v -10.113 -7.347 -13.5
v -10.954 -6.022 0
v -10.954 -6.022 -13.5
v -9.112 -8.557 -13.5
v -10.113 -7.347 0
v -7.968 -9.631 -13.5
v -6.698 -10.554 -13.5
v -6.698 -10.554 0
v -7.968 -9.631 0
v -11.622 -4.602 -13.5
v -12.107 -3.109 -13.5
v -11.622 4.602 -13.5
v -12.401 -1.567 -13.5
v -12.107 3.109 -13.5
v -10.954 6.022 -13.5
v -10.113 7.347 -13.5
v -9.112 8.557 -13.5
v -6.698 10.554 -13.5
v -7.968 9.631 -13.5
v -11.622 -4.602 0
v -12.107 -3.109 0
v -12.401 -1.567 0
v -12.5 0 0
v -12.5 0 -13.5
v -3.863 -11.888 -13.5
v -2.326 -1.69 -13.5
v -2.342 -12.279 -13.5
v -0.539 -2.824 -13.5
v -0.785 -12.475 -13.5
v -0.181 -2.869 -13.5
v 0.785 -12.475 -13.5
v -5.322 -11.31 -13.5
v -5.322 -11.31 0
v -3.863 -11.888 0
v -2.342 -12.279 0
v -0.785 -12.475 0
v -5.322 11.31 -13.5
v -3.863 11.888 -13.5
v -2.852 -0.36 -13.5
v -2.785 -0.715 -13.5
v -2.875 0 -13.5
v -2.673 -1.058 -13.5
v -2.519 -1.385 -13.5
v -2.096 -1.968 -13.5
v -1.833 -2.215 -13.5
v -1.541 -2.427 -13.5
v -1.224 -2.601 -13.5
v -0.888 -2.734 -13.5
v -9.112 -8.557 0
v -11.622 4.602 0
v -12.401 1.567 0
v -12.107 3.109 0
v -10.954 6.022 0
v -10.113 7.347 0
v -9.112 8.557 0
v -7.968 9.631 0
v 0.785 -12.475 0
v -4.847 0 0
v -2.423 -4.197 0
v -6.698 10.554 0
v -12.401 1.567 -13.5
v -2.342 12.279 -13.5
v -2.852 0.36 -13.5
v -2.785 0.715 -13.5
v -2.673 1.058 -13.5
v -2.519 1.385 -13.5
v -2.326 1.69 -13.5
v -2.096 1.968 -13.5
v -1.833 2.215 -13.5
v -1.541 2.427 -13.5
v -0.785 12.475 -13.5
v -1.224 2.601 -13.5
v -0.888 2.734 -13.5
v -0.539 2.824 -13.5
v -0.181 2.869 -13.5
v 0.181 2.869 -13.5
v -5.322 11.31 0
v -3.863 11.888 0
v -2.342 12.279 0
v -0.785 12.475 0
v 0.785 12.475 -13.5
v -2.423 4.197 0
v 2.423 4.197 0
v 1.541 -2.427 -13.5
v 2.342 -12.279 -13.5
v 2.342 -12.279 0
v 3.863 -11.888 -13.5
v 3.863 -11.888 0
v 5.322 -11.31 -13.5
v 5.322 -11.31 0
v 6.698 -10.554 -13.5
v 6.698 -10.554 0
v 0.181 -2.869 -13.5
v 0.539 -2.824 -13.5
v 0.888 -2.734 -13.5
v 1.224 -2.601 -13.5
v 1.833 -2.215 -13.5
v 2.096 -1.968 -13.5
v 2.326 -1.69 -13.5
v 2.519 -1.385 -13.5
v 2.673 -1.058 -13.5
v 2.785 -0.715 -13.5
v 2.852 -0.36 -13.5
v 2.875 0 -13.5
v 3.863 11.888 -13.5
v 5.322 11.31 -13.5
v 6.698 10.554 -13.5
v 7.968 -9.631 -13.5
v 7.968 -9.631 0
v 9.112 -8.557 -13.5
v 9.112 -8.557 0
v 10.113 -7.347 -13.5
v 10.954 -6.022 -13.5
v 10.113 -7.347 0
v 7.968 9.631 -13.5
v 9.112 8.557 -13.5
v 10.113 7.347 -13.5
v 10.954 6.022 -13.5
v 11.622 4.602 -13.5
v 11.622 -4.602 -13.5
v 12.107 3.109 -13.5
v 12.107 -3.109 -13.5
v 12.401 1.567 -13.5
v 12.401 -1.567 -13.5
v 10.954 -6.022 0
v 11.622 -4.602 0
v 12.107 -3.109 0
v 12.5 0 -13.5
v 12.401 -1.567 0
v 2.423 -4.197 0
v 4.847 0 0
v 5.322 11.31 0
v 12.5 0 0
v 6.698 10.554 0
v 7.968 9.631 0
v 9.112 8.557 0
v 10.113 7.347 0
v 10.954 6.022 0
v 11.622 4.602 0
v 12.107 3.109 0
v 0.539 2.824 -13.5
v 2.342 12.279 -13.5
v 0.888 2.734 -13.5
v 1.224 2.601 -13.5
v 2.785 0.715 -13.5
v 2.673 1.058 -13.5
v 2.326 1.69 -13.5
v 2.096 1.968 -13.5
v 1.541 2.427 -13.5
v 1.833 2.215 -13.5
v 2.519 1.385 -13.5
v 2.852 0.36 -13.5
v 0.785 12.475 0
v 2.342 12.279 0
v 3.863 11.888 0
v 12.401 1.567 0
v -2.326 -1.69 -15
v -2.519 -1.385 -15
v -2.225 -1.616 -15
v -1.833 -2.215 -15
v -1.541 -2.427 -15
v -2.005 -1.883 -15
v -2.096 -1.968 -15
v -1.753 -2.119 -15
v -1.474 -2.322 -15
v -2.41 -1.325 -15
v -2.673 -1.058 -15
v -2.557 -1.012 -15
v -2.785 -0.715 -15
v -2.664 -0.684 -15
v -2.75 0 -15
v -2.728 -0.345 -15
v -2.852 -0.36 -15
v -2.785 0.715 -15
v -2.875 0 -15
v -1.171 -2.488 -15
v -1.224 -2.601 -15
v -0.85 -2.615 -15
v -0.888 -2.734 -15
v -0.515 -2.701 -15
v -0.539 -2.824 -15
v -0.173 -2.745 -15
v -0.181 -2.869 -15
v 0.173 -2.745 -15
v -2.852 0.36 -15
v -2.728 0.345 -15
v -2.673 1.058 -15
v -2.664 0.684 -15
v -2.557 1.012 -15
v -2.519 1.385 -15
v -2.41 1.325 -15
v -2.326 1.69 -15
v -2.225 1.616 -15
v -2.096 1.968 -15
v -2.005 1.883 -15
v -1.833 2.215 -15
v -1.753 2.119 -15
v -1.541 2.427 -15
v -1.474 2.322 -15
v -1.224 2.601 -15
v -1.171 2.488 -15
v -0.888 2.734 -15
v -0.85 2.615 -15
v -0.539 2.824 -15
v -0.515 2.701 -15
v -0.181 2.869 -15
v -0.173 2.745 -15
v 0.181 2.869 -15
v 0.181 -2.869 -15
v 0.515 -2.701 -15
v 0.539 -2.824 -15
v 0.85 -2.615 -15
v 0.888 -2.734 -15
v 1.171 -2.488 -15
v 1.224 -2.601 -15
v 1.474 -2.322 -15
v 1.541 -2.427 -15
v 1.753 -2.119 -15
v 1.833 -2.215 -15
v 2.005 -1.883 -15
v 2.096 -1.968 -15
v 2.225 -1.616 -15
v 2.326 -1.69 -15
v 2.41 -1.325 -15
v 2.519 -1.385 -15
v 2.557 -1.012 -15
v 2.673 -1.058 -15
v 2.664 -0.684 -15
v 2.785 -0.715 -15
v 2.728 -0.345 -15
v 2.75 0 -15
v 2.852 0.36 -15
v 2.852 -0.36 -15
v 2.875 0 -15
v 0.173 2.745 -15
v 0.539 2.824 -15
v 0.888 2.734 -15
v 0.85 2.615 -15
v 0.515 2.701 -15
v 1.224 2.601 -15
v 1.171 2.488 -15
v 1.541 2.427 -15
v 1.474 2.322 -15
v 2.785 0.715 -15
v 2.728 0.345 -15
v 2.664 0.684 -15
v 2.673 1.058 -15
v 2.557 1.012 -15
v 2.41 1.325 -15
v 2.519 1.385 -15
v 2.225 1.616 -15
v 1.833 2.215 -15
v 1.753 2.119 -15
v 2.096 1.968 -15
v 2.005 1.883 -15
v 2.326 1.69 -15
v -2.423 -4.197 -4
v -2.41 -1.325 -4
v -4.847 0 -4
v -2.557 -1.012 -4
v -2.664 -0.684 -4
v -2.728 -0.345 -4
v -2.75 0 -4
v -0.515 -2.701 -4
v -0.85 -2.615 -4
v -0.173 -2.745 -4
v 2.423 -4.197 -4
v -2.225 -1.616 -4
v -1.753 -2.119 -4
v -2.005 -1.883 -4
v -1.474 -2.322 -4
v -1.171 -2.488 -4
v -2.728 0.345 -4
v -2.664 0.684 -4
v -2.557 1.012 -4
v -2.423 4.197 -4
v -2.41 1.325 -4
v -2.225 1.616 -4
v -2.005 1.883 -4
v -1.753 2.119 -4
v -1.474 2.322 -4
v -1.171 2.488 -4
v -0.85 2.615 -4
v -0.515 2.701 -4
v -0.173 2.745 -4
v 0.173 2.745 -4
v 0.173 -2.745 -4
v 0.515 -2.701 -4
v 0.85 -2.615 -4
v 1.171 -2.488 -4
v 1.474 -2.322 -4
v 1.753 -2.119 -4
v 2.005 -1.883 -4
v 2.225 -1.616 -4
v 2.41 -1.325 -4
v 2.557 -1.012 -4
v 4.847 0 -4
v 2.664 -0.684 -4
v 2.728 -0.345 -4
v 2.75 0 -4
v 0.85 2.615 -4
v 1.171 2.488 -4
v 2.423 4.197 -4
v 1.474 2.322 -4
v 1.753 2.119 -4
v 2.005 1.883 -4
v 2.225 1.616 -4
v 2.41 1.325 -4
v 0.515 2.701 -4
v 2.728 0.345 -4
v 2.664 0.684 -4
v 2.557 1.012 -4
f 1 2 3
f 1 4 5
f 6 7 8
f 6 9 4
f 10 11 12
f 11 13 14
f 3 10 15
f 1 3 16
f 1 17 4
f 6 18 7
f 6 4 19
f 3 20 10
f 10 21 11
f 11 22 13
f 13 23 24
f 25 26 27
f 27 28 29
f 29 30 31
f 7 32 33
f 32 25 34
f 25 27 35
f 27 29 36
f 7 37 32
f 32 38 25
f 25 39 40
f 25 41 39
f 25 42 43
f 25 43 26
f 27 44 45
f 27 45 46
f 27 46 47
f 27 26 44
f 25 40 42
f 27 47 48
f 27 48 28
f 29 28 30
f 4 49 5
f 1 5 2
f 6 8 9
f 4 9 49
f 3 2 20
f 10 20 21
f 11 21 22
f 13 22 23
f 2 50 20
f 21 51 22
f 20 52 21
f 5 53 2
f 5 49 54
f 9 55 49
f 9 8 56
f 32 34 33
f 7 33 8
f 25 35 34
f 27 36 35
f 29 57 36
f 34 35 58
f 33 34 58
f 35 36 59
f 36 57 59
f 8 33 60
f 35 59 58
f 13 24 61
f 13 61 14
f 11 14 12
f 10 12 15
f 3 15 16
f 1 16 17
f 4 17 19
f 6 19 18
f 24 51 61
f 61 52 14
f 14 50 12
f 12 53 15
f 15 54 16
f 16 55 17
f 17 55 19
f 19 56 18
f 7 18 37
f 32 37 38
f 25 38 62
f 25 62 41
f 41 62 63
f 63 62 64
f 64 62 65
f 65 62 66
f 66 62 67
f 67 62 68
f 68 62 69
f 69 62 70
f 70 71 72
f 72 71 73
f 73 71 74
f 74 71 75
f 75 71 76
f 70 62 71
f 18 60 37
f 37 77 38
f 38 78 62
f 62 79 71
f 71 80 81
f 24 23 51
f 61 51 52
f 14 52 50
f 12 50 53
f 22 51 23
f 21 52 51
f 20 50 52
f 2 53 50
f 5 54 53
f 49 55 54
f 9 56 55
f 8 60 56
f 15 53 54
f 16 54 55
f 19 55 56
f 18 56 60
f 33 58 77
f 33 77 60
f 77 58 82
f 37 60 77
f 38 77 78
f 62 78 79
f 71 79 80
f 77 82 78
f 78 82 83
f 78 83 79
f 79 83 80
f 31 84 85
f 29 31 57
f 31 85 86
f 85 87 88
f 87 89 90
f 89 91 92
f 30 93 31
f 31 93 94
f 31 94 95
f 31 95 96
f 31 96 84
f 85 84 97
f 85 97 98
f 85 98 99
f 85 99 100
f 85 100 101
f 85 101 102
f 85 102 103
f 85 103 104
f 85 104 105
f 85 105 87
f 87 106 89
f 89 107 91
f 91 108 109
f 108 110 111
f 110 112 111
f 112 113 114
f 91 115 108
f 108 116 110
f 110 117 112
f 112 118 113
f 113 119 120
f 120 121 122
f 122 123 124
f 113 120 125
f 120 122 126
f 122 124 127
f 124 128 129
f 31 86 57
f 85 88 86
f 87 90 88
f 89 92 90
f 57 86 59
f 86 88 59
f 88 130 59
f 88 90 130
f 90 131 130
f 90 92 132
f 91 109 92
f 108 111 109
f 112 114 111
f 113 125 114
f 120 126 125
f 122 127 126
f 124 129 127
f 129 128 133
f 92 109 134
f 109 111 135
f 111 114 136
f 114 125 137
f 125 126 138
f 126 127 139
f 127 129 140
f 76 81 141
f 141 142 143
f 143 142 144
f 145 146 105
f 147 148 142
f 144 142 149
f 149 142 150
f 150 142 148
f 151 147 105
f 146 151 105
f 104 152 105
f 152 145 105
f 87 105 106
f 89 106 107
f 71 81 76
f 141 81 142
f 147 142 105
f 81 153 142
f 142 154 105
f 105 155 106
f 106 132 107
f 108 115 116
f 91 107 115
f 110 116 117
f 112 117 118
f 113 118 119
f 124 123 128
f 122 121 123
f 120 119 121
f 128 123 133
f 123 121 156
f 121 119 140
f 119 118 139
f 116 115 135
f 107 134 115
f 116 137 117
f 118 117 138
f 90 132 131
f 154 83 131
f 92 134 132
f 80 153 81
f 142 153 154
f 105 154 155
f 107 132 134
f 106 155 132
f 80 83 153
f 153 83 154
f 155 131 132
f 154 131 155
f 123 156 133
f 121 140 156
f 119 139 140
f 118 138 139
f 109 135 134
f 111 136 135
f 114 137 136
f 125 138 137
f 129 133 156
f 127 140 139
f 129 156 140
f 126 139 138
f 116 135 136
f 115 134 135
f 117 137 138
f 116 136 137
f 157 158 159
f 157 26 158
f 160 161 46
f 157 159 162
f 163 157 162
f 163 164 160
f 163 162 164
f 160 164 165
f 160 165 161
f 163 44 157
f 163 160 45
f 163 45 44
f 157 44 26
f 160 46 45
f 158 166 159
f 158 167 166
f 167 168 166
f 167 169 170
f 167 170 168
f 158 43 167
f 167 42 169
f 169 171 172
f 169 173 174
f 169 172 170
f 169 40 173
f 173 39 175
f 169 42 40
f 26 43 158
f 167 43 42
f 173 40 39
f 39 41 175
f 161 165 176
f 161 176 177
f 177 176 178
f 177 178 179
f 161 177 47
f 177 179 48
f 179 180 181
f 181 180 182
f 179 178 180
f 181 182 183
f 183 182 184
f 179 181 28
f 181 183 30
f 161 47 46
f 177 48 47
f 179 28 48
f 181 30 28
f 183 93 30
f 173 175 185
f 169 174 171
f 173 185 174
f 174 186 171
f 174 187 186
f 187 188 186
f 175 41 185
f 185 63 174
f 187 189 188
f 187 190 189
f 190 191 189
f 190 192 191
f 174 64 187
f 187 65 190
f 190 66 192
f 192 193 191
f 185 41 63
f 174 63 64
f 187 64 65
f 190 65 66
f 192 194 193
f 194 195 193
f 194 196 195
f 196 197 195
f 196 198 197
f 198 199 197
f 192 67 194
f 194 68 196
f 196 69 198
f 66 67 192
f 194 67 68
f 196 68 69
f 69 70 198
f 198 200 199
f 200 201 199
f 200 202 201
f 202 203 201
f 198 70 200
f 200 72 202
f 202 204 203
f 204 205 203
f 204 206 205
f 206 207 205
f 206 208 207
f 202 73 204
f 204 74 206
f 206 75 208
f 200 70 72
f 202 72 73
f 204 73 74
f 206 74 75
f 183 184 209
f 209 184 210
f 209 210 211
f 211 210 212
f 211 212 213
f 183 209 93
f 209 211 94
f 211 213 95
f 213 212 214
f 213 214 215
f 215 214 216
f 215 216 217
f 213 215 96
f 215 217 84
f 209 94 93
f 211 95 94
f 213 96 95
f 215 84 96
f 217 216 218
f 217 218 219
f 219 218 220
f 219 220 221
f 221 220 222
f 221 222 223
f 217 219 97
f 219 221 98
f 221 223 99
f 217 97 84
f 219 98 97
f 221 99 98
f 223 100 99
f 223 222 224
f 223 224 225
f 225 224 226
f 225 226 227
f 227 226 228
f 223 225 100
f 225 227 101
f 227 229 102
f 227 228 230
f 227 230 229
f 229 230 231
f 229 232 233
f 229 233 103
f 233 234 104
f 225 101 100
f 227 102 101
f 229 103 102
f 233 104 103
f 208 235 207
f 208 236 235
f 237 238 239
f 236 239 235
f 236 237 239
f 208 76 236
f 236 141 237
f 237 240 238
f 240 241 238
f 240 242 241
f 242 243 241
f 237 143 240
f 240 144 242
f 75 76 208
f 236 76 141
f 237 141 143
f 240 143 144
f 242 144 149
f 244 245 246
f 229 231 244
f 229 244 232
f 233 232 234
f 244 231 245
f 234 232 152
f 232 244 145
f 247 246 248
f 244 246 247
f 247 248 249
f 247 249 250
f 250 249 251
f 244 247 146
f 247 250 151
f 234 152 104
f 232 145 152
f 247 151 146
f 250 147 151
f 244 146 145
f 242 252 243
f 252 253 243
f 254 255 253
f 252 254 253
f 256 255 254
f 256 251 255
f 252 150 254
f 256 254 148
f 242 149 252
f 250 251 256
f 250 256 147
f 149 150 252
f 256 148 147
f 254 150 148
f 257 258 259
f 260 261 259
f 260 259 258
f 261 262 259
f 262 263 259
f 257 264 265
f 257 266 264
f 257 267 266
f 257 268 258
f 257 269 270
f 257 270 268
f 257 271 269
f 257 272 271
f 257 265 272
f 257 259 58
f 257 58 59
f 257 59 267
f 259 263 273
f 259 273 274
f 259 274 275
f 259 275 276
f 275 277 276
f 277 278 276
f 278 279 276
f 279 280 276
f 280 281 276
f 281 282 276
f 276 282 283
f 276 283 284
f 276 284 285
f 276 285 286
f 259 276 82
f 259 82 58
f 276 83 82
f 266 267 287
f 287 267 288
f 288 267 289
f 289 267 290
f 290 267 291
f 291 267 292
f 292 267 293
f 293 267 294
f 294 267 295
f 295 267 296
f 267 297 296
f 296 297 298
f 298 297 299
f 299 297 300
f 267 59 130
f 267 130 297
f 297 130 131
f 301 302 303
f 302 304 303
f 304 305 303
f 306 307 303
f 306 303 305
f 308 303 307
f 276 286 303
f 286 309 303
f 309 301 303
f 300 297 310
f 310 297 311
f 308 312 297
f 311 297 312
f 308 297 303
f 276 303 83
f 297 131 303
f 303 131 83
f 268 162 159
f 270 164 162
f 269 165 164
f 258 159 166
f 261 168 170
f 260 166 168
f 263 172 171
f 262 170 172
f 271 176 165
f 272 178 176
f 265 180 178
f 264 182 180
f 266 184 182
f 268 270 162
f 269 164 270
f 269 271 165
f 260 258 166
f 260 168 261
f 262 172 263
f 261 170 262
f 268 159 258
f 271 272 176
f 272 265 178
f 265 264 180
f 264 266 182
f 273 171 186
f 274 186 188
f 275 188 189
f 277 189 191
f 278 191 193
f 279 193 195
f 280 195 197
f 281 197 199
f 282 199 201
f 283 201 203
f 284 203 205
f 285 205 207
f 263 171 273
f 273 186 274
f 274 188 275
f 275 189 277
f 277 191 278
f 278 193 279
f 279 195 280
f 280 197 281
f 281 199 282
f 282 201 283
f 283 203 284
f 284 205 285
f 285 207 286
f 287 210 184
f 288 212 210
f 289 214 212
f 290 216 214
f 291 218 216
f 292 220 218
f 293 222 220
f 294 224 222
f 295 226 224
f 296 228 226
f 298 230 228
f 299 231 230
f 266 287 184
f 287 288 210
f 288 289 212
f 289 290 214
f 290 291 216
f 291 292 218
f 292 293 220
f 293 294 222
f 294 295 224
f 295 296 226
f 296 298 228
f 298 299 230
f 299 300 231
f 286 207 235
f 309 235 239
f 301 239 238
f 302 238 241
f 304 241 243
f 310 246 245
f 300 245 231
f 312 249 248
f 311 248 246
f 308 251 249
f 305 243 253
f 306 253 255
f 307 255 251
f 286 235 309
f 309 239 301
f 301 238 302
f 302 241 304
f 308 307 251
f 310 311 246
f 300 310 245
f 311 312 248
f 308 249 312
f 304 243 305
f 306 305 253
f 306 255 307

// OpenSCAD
$fn = 50;

difference() {
	union() {
		translate(v = [0, 0, -13.5]) {
			cylinder(h = 13.5, r = 12.5);
		}
		#translate(v = [0, 0, -15.0]) {
			cylinder(h = 15, r = 2.875);
		}
	}
	union() {
		translate(v = [0, 0, 0]) {
			rotate(a = [0, 0, 0]) {
				difference() {
					union() {
						translate(v = [0, 0, -4]) {
							linear_extrude(height = 4) {
								polygon(points = [[4.8468, 0.0], [2.4234000000000004, 4.197451927062417], [-2.423399999999999, 4.197451927062417], [-4.8468, 5.935618106107392e-16], [-2.423400000000002, -4.197451927062416], [2.423399999999997, -4.197451927062419]]);
							}
						}
					}
					union();
				}
			}
		}
		#translate(v = [0, 0, -100.0]) {
			cylinder(h = 200, r = 2.75);
		}
	}
}
